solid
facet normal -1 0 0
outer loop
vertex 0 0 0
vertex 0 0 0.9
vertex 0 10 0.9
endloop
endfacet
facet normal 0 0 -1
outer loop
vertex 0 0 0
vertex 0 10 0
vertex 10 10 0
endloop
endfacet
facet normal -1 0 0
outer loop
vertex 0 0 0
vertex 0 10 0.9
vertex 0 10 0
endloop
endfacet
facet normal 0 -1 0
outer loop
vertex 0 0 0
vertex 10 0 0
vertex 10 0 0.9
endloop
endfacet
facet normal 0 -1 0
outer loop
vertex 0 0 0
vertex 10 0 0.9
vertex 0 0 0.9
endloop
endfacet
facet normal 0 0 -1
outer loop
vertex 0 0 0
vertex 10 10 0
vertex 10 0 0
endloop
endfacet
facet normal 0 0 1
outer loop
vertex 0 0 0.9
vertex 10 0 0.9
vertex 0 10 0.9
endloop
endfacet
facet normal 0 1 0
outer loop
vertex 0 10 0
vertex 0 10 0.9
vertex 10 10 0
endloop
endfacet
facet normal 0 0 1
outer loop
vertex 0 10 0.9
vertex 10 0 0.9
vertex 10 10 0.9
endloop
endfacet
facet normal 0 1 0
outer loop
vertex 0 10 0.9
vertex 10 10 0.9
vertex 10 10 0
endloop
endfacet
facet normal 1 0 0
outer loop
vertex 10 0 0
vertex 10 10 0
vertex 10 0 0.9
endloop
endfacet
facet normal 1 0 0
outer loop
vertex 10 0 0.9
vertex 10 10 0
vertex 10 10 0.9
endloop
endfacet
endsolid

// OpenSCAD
/* Warning, this is a very basic generator with a lot of approximation 
input data : [VQFN, NVX, 10x10x0.9mm, 132, , A, C04-00472A]
generated by com.zoubworld.electronics.cad.model3d.Basic
Date : Sun Feb 15 10:50:48 CET 2026
*/

//body
color("black")
translate([0,0,0])
cube([10.0,10.0,0.9], center=false);
